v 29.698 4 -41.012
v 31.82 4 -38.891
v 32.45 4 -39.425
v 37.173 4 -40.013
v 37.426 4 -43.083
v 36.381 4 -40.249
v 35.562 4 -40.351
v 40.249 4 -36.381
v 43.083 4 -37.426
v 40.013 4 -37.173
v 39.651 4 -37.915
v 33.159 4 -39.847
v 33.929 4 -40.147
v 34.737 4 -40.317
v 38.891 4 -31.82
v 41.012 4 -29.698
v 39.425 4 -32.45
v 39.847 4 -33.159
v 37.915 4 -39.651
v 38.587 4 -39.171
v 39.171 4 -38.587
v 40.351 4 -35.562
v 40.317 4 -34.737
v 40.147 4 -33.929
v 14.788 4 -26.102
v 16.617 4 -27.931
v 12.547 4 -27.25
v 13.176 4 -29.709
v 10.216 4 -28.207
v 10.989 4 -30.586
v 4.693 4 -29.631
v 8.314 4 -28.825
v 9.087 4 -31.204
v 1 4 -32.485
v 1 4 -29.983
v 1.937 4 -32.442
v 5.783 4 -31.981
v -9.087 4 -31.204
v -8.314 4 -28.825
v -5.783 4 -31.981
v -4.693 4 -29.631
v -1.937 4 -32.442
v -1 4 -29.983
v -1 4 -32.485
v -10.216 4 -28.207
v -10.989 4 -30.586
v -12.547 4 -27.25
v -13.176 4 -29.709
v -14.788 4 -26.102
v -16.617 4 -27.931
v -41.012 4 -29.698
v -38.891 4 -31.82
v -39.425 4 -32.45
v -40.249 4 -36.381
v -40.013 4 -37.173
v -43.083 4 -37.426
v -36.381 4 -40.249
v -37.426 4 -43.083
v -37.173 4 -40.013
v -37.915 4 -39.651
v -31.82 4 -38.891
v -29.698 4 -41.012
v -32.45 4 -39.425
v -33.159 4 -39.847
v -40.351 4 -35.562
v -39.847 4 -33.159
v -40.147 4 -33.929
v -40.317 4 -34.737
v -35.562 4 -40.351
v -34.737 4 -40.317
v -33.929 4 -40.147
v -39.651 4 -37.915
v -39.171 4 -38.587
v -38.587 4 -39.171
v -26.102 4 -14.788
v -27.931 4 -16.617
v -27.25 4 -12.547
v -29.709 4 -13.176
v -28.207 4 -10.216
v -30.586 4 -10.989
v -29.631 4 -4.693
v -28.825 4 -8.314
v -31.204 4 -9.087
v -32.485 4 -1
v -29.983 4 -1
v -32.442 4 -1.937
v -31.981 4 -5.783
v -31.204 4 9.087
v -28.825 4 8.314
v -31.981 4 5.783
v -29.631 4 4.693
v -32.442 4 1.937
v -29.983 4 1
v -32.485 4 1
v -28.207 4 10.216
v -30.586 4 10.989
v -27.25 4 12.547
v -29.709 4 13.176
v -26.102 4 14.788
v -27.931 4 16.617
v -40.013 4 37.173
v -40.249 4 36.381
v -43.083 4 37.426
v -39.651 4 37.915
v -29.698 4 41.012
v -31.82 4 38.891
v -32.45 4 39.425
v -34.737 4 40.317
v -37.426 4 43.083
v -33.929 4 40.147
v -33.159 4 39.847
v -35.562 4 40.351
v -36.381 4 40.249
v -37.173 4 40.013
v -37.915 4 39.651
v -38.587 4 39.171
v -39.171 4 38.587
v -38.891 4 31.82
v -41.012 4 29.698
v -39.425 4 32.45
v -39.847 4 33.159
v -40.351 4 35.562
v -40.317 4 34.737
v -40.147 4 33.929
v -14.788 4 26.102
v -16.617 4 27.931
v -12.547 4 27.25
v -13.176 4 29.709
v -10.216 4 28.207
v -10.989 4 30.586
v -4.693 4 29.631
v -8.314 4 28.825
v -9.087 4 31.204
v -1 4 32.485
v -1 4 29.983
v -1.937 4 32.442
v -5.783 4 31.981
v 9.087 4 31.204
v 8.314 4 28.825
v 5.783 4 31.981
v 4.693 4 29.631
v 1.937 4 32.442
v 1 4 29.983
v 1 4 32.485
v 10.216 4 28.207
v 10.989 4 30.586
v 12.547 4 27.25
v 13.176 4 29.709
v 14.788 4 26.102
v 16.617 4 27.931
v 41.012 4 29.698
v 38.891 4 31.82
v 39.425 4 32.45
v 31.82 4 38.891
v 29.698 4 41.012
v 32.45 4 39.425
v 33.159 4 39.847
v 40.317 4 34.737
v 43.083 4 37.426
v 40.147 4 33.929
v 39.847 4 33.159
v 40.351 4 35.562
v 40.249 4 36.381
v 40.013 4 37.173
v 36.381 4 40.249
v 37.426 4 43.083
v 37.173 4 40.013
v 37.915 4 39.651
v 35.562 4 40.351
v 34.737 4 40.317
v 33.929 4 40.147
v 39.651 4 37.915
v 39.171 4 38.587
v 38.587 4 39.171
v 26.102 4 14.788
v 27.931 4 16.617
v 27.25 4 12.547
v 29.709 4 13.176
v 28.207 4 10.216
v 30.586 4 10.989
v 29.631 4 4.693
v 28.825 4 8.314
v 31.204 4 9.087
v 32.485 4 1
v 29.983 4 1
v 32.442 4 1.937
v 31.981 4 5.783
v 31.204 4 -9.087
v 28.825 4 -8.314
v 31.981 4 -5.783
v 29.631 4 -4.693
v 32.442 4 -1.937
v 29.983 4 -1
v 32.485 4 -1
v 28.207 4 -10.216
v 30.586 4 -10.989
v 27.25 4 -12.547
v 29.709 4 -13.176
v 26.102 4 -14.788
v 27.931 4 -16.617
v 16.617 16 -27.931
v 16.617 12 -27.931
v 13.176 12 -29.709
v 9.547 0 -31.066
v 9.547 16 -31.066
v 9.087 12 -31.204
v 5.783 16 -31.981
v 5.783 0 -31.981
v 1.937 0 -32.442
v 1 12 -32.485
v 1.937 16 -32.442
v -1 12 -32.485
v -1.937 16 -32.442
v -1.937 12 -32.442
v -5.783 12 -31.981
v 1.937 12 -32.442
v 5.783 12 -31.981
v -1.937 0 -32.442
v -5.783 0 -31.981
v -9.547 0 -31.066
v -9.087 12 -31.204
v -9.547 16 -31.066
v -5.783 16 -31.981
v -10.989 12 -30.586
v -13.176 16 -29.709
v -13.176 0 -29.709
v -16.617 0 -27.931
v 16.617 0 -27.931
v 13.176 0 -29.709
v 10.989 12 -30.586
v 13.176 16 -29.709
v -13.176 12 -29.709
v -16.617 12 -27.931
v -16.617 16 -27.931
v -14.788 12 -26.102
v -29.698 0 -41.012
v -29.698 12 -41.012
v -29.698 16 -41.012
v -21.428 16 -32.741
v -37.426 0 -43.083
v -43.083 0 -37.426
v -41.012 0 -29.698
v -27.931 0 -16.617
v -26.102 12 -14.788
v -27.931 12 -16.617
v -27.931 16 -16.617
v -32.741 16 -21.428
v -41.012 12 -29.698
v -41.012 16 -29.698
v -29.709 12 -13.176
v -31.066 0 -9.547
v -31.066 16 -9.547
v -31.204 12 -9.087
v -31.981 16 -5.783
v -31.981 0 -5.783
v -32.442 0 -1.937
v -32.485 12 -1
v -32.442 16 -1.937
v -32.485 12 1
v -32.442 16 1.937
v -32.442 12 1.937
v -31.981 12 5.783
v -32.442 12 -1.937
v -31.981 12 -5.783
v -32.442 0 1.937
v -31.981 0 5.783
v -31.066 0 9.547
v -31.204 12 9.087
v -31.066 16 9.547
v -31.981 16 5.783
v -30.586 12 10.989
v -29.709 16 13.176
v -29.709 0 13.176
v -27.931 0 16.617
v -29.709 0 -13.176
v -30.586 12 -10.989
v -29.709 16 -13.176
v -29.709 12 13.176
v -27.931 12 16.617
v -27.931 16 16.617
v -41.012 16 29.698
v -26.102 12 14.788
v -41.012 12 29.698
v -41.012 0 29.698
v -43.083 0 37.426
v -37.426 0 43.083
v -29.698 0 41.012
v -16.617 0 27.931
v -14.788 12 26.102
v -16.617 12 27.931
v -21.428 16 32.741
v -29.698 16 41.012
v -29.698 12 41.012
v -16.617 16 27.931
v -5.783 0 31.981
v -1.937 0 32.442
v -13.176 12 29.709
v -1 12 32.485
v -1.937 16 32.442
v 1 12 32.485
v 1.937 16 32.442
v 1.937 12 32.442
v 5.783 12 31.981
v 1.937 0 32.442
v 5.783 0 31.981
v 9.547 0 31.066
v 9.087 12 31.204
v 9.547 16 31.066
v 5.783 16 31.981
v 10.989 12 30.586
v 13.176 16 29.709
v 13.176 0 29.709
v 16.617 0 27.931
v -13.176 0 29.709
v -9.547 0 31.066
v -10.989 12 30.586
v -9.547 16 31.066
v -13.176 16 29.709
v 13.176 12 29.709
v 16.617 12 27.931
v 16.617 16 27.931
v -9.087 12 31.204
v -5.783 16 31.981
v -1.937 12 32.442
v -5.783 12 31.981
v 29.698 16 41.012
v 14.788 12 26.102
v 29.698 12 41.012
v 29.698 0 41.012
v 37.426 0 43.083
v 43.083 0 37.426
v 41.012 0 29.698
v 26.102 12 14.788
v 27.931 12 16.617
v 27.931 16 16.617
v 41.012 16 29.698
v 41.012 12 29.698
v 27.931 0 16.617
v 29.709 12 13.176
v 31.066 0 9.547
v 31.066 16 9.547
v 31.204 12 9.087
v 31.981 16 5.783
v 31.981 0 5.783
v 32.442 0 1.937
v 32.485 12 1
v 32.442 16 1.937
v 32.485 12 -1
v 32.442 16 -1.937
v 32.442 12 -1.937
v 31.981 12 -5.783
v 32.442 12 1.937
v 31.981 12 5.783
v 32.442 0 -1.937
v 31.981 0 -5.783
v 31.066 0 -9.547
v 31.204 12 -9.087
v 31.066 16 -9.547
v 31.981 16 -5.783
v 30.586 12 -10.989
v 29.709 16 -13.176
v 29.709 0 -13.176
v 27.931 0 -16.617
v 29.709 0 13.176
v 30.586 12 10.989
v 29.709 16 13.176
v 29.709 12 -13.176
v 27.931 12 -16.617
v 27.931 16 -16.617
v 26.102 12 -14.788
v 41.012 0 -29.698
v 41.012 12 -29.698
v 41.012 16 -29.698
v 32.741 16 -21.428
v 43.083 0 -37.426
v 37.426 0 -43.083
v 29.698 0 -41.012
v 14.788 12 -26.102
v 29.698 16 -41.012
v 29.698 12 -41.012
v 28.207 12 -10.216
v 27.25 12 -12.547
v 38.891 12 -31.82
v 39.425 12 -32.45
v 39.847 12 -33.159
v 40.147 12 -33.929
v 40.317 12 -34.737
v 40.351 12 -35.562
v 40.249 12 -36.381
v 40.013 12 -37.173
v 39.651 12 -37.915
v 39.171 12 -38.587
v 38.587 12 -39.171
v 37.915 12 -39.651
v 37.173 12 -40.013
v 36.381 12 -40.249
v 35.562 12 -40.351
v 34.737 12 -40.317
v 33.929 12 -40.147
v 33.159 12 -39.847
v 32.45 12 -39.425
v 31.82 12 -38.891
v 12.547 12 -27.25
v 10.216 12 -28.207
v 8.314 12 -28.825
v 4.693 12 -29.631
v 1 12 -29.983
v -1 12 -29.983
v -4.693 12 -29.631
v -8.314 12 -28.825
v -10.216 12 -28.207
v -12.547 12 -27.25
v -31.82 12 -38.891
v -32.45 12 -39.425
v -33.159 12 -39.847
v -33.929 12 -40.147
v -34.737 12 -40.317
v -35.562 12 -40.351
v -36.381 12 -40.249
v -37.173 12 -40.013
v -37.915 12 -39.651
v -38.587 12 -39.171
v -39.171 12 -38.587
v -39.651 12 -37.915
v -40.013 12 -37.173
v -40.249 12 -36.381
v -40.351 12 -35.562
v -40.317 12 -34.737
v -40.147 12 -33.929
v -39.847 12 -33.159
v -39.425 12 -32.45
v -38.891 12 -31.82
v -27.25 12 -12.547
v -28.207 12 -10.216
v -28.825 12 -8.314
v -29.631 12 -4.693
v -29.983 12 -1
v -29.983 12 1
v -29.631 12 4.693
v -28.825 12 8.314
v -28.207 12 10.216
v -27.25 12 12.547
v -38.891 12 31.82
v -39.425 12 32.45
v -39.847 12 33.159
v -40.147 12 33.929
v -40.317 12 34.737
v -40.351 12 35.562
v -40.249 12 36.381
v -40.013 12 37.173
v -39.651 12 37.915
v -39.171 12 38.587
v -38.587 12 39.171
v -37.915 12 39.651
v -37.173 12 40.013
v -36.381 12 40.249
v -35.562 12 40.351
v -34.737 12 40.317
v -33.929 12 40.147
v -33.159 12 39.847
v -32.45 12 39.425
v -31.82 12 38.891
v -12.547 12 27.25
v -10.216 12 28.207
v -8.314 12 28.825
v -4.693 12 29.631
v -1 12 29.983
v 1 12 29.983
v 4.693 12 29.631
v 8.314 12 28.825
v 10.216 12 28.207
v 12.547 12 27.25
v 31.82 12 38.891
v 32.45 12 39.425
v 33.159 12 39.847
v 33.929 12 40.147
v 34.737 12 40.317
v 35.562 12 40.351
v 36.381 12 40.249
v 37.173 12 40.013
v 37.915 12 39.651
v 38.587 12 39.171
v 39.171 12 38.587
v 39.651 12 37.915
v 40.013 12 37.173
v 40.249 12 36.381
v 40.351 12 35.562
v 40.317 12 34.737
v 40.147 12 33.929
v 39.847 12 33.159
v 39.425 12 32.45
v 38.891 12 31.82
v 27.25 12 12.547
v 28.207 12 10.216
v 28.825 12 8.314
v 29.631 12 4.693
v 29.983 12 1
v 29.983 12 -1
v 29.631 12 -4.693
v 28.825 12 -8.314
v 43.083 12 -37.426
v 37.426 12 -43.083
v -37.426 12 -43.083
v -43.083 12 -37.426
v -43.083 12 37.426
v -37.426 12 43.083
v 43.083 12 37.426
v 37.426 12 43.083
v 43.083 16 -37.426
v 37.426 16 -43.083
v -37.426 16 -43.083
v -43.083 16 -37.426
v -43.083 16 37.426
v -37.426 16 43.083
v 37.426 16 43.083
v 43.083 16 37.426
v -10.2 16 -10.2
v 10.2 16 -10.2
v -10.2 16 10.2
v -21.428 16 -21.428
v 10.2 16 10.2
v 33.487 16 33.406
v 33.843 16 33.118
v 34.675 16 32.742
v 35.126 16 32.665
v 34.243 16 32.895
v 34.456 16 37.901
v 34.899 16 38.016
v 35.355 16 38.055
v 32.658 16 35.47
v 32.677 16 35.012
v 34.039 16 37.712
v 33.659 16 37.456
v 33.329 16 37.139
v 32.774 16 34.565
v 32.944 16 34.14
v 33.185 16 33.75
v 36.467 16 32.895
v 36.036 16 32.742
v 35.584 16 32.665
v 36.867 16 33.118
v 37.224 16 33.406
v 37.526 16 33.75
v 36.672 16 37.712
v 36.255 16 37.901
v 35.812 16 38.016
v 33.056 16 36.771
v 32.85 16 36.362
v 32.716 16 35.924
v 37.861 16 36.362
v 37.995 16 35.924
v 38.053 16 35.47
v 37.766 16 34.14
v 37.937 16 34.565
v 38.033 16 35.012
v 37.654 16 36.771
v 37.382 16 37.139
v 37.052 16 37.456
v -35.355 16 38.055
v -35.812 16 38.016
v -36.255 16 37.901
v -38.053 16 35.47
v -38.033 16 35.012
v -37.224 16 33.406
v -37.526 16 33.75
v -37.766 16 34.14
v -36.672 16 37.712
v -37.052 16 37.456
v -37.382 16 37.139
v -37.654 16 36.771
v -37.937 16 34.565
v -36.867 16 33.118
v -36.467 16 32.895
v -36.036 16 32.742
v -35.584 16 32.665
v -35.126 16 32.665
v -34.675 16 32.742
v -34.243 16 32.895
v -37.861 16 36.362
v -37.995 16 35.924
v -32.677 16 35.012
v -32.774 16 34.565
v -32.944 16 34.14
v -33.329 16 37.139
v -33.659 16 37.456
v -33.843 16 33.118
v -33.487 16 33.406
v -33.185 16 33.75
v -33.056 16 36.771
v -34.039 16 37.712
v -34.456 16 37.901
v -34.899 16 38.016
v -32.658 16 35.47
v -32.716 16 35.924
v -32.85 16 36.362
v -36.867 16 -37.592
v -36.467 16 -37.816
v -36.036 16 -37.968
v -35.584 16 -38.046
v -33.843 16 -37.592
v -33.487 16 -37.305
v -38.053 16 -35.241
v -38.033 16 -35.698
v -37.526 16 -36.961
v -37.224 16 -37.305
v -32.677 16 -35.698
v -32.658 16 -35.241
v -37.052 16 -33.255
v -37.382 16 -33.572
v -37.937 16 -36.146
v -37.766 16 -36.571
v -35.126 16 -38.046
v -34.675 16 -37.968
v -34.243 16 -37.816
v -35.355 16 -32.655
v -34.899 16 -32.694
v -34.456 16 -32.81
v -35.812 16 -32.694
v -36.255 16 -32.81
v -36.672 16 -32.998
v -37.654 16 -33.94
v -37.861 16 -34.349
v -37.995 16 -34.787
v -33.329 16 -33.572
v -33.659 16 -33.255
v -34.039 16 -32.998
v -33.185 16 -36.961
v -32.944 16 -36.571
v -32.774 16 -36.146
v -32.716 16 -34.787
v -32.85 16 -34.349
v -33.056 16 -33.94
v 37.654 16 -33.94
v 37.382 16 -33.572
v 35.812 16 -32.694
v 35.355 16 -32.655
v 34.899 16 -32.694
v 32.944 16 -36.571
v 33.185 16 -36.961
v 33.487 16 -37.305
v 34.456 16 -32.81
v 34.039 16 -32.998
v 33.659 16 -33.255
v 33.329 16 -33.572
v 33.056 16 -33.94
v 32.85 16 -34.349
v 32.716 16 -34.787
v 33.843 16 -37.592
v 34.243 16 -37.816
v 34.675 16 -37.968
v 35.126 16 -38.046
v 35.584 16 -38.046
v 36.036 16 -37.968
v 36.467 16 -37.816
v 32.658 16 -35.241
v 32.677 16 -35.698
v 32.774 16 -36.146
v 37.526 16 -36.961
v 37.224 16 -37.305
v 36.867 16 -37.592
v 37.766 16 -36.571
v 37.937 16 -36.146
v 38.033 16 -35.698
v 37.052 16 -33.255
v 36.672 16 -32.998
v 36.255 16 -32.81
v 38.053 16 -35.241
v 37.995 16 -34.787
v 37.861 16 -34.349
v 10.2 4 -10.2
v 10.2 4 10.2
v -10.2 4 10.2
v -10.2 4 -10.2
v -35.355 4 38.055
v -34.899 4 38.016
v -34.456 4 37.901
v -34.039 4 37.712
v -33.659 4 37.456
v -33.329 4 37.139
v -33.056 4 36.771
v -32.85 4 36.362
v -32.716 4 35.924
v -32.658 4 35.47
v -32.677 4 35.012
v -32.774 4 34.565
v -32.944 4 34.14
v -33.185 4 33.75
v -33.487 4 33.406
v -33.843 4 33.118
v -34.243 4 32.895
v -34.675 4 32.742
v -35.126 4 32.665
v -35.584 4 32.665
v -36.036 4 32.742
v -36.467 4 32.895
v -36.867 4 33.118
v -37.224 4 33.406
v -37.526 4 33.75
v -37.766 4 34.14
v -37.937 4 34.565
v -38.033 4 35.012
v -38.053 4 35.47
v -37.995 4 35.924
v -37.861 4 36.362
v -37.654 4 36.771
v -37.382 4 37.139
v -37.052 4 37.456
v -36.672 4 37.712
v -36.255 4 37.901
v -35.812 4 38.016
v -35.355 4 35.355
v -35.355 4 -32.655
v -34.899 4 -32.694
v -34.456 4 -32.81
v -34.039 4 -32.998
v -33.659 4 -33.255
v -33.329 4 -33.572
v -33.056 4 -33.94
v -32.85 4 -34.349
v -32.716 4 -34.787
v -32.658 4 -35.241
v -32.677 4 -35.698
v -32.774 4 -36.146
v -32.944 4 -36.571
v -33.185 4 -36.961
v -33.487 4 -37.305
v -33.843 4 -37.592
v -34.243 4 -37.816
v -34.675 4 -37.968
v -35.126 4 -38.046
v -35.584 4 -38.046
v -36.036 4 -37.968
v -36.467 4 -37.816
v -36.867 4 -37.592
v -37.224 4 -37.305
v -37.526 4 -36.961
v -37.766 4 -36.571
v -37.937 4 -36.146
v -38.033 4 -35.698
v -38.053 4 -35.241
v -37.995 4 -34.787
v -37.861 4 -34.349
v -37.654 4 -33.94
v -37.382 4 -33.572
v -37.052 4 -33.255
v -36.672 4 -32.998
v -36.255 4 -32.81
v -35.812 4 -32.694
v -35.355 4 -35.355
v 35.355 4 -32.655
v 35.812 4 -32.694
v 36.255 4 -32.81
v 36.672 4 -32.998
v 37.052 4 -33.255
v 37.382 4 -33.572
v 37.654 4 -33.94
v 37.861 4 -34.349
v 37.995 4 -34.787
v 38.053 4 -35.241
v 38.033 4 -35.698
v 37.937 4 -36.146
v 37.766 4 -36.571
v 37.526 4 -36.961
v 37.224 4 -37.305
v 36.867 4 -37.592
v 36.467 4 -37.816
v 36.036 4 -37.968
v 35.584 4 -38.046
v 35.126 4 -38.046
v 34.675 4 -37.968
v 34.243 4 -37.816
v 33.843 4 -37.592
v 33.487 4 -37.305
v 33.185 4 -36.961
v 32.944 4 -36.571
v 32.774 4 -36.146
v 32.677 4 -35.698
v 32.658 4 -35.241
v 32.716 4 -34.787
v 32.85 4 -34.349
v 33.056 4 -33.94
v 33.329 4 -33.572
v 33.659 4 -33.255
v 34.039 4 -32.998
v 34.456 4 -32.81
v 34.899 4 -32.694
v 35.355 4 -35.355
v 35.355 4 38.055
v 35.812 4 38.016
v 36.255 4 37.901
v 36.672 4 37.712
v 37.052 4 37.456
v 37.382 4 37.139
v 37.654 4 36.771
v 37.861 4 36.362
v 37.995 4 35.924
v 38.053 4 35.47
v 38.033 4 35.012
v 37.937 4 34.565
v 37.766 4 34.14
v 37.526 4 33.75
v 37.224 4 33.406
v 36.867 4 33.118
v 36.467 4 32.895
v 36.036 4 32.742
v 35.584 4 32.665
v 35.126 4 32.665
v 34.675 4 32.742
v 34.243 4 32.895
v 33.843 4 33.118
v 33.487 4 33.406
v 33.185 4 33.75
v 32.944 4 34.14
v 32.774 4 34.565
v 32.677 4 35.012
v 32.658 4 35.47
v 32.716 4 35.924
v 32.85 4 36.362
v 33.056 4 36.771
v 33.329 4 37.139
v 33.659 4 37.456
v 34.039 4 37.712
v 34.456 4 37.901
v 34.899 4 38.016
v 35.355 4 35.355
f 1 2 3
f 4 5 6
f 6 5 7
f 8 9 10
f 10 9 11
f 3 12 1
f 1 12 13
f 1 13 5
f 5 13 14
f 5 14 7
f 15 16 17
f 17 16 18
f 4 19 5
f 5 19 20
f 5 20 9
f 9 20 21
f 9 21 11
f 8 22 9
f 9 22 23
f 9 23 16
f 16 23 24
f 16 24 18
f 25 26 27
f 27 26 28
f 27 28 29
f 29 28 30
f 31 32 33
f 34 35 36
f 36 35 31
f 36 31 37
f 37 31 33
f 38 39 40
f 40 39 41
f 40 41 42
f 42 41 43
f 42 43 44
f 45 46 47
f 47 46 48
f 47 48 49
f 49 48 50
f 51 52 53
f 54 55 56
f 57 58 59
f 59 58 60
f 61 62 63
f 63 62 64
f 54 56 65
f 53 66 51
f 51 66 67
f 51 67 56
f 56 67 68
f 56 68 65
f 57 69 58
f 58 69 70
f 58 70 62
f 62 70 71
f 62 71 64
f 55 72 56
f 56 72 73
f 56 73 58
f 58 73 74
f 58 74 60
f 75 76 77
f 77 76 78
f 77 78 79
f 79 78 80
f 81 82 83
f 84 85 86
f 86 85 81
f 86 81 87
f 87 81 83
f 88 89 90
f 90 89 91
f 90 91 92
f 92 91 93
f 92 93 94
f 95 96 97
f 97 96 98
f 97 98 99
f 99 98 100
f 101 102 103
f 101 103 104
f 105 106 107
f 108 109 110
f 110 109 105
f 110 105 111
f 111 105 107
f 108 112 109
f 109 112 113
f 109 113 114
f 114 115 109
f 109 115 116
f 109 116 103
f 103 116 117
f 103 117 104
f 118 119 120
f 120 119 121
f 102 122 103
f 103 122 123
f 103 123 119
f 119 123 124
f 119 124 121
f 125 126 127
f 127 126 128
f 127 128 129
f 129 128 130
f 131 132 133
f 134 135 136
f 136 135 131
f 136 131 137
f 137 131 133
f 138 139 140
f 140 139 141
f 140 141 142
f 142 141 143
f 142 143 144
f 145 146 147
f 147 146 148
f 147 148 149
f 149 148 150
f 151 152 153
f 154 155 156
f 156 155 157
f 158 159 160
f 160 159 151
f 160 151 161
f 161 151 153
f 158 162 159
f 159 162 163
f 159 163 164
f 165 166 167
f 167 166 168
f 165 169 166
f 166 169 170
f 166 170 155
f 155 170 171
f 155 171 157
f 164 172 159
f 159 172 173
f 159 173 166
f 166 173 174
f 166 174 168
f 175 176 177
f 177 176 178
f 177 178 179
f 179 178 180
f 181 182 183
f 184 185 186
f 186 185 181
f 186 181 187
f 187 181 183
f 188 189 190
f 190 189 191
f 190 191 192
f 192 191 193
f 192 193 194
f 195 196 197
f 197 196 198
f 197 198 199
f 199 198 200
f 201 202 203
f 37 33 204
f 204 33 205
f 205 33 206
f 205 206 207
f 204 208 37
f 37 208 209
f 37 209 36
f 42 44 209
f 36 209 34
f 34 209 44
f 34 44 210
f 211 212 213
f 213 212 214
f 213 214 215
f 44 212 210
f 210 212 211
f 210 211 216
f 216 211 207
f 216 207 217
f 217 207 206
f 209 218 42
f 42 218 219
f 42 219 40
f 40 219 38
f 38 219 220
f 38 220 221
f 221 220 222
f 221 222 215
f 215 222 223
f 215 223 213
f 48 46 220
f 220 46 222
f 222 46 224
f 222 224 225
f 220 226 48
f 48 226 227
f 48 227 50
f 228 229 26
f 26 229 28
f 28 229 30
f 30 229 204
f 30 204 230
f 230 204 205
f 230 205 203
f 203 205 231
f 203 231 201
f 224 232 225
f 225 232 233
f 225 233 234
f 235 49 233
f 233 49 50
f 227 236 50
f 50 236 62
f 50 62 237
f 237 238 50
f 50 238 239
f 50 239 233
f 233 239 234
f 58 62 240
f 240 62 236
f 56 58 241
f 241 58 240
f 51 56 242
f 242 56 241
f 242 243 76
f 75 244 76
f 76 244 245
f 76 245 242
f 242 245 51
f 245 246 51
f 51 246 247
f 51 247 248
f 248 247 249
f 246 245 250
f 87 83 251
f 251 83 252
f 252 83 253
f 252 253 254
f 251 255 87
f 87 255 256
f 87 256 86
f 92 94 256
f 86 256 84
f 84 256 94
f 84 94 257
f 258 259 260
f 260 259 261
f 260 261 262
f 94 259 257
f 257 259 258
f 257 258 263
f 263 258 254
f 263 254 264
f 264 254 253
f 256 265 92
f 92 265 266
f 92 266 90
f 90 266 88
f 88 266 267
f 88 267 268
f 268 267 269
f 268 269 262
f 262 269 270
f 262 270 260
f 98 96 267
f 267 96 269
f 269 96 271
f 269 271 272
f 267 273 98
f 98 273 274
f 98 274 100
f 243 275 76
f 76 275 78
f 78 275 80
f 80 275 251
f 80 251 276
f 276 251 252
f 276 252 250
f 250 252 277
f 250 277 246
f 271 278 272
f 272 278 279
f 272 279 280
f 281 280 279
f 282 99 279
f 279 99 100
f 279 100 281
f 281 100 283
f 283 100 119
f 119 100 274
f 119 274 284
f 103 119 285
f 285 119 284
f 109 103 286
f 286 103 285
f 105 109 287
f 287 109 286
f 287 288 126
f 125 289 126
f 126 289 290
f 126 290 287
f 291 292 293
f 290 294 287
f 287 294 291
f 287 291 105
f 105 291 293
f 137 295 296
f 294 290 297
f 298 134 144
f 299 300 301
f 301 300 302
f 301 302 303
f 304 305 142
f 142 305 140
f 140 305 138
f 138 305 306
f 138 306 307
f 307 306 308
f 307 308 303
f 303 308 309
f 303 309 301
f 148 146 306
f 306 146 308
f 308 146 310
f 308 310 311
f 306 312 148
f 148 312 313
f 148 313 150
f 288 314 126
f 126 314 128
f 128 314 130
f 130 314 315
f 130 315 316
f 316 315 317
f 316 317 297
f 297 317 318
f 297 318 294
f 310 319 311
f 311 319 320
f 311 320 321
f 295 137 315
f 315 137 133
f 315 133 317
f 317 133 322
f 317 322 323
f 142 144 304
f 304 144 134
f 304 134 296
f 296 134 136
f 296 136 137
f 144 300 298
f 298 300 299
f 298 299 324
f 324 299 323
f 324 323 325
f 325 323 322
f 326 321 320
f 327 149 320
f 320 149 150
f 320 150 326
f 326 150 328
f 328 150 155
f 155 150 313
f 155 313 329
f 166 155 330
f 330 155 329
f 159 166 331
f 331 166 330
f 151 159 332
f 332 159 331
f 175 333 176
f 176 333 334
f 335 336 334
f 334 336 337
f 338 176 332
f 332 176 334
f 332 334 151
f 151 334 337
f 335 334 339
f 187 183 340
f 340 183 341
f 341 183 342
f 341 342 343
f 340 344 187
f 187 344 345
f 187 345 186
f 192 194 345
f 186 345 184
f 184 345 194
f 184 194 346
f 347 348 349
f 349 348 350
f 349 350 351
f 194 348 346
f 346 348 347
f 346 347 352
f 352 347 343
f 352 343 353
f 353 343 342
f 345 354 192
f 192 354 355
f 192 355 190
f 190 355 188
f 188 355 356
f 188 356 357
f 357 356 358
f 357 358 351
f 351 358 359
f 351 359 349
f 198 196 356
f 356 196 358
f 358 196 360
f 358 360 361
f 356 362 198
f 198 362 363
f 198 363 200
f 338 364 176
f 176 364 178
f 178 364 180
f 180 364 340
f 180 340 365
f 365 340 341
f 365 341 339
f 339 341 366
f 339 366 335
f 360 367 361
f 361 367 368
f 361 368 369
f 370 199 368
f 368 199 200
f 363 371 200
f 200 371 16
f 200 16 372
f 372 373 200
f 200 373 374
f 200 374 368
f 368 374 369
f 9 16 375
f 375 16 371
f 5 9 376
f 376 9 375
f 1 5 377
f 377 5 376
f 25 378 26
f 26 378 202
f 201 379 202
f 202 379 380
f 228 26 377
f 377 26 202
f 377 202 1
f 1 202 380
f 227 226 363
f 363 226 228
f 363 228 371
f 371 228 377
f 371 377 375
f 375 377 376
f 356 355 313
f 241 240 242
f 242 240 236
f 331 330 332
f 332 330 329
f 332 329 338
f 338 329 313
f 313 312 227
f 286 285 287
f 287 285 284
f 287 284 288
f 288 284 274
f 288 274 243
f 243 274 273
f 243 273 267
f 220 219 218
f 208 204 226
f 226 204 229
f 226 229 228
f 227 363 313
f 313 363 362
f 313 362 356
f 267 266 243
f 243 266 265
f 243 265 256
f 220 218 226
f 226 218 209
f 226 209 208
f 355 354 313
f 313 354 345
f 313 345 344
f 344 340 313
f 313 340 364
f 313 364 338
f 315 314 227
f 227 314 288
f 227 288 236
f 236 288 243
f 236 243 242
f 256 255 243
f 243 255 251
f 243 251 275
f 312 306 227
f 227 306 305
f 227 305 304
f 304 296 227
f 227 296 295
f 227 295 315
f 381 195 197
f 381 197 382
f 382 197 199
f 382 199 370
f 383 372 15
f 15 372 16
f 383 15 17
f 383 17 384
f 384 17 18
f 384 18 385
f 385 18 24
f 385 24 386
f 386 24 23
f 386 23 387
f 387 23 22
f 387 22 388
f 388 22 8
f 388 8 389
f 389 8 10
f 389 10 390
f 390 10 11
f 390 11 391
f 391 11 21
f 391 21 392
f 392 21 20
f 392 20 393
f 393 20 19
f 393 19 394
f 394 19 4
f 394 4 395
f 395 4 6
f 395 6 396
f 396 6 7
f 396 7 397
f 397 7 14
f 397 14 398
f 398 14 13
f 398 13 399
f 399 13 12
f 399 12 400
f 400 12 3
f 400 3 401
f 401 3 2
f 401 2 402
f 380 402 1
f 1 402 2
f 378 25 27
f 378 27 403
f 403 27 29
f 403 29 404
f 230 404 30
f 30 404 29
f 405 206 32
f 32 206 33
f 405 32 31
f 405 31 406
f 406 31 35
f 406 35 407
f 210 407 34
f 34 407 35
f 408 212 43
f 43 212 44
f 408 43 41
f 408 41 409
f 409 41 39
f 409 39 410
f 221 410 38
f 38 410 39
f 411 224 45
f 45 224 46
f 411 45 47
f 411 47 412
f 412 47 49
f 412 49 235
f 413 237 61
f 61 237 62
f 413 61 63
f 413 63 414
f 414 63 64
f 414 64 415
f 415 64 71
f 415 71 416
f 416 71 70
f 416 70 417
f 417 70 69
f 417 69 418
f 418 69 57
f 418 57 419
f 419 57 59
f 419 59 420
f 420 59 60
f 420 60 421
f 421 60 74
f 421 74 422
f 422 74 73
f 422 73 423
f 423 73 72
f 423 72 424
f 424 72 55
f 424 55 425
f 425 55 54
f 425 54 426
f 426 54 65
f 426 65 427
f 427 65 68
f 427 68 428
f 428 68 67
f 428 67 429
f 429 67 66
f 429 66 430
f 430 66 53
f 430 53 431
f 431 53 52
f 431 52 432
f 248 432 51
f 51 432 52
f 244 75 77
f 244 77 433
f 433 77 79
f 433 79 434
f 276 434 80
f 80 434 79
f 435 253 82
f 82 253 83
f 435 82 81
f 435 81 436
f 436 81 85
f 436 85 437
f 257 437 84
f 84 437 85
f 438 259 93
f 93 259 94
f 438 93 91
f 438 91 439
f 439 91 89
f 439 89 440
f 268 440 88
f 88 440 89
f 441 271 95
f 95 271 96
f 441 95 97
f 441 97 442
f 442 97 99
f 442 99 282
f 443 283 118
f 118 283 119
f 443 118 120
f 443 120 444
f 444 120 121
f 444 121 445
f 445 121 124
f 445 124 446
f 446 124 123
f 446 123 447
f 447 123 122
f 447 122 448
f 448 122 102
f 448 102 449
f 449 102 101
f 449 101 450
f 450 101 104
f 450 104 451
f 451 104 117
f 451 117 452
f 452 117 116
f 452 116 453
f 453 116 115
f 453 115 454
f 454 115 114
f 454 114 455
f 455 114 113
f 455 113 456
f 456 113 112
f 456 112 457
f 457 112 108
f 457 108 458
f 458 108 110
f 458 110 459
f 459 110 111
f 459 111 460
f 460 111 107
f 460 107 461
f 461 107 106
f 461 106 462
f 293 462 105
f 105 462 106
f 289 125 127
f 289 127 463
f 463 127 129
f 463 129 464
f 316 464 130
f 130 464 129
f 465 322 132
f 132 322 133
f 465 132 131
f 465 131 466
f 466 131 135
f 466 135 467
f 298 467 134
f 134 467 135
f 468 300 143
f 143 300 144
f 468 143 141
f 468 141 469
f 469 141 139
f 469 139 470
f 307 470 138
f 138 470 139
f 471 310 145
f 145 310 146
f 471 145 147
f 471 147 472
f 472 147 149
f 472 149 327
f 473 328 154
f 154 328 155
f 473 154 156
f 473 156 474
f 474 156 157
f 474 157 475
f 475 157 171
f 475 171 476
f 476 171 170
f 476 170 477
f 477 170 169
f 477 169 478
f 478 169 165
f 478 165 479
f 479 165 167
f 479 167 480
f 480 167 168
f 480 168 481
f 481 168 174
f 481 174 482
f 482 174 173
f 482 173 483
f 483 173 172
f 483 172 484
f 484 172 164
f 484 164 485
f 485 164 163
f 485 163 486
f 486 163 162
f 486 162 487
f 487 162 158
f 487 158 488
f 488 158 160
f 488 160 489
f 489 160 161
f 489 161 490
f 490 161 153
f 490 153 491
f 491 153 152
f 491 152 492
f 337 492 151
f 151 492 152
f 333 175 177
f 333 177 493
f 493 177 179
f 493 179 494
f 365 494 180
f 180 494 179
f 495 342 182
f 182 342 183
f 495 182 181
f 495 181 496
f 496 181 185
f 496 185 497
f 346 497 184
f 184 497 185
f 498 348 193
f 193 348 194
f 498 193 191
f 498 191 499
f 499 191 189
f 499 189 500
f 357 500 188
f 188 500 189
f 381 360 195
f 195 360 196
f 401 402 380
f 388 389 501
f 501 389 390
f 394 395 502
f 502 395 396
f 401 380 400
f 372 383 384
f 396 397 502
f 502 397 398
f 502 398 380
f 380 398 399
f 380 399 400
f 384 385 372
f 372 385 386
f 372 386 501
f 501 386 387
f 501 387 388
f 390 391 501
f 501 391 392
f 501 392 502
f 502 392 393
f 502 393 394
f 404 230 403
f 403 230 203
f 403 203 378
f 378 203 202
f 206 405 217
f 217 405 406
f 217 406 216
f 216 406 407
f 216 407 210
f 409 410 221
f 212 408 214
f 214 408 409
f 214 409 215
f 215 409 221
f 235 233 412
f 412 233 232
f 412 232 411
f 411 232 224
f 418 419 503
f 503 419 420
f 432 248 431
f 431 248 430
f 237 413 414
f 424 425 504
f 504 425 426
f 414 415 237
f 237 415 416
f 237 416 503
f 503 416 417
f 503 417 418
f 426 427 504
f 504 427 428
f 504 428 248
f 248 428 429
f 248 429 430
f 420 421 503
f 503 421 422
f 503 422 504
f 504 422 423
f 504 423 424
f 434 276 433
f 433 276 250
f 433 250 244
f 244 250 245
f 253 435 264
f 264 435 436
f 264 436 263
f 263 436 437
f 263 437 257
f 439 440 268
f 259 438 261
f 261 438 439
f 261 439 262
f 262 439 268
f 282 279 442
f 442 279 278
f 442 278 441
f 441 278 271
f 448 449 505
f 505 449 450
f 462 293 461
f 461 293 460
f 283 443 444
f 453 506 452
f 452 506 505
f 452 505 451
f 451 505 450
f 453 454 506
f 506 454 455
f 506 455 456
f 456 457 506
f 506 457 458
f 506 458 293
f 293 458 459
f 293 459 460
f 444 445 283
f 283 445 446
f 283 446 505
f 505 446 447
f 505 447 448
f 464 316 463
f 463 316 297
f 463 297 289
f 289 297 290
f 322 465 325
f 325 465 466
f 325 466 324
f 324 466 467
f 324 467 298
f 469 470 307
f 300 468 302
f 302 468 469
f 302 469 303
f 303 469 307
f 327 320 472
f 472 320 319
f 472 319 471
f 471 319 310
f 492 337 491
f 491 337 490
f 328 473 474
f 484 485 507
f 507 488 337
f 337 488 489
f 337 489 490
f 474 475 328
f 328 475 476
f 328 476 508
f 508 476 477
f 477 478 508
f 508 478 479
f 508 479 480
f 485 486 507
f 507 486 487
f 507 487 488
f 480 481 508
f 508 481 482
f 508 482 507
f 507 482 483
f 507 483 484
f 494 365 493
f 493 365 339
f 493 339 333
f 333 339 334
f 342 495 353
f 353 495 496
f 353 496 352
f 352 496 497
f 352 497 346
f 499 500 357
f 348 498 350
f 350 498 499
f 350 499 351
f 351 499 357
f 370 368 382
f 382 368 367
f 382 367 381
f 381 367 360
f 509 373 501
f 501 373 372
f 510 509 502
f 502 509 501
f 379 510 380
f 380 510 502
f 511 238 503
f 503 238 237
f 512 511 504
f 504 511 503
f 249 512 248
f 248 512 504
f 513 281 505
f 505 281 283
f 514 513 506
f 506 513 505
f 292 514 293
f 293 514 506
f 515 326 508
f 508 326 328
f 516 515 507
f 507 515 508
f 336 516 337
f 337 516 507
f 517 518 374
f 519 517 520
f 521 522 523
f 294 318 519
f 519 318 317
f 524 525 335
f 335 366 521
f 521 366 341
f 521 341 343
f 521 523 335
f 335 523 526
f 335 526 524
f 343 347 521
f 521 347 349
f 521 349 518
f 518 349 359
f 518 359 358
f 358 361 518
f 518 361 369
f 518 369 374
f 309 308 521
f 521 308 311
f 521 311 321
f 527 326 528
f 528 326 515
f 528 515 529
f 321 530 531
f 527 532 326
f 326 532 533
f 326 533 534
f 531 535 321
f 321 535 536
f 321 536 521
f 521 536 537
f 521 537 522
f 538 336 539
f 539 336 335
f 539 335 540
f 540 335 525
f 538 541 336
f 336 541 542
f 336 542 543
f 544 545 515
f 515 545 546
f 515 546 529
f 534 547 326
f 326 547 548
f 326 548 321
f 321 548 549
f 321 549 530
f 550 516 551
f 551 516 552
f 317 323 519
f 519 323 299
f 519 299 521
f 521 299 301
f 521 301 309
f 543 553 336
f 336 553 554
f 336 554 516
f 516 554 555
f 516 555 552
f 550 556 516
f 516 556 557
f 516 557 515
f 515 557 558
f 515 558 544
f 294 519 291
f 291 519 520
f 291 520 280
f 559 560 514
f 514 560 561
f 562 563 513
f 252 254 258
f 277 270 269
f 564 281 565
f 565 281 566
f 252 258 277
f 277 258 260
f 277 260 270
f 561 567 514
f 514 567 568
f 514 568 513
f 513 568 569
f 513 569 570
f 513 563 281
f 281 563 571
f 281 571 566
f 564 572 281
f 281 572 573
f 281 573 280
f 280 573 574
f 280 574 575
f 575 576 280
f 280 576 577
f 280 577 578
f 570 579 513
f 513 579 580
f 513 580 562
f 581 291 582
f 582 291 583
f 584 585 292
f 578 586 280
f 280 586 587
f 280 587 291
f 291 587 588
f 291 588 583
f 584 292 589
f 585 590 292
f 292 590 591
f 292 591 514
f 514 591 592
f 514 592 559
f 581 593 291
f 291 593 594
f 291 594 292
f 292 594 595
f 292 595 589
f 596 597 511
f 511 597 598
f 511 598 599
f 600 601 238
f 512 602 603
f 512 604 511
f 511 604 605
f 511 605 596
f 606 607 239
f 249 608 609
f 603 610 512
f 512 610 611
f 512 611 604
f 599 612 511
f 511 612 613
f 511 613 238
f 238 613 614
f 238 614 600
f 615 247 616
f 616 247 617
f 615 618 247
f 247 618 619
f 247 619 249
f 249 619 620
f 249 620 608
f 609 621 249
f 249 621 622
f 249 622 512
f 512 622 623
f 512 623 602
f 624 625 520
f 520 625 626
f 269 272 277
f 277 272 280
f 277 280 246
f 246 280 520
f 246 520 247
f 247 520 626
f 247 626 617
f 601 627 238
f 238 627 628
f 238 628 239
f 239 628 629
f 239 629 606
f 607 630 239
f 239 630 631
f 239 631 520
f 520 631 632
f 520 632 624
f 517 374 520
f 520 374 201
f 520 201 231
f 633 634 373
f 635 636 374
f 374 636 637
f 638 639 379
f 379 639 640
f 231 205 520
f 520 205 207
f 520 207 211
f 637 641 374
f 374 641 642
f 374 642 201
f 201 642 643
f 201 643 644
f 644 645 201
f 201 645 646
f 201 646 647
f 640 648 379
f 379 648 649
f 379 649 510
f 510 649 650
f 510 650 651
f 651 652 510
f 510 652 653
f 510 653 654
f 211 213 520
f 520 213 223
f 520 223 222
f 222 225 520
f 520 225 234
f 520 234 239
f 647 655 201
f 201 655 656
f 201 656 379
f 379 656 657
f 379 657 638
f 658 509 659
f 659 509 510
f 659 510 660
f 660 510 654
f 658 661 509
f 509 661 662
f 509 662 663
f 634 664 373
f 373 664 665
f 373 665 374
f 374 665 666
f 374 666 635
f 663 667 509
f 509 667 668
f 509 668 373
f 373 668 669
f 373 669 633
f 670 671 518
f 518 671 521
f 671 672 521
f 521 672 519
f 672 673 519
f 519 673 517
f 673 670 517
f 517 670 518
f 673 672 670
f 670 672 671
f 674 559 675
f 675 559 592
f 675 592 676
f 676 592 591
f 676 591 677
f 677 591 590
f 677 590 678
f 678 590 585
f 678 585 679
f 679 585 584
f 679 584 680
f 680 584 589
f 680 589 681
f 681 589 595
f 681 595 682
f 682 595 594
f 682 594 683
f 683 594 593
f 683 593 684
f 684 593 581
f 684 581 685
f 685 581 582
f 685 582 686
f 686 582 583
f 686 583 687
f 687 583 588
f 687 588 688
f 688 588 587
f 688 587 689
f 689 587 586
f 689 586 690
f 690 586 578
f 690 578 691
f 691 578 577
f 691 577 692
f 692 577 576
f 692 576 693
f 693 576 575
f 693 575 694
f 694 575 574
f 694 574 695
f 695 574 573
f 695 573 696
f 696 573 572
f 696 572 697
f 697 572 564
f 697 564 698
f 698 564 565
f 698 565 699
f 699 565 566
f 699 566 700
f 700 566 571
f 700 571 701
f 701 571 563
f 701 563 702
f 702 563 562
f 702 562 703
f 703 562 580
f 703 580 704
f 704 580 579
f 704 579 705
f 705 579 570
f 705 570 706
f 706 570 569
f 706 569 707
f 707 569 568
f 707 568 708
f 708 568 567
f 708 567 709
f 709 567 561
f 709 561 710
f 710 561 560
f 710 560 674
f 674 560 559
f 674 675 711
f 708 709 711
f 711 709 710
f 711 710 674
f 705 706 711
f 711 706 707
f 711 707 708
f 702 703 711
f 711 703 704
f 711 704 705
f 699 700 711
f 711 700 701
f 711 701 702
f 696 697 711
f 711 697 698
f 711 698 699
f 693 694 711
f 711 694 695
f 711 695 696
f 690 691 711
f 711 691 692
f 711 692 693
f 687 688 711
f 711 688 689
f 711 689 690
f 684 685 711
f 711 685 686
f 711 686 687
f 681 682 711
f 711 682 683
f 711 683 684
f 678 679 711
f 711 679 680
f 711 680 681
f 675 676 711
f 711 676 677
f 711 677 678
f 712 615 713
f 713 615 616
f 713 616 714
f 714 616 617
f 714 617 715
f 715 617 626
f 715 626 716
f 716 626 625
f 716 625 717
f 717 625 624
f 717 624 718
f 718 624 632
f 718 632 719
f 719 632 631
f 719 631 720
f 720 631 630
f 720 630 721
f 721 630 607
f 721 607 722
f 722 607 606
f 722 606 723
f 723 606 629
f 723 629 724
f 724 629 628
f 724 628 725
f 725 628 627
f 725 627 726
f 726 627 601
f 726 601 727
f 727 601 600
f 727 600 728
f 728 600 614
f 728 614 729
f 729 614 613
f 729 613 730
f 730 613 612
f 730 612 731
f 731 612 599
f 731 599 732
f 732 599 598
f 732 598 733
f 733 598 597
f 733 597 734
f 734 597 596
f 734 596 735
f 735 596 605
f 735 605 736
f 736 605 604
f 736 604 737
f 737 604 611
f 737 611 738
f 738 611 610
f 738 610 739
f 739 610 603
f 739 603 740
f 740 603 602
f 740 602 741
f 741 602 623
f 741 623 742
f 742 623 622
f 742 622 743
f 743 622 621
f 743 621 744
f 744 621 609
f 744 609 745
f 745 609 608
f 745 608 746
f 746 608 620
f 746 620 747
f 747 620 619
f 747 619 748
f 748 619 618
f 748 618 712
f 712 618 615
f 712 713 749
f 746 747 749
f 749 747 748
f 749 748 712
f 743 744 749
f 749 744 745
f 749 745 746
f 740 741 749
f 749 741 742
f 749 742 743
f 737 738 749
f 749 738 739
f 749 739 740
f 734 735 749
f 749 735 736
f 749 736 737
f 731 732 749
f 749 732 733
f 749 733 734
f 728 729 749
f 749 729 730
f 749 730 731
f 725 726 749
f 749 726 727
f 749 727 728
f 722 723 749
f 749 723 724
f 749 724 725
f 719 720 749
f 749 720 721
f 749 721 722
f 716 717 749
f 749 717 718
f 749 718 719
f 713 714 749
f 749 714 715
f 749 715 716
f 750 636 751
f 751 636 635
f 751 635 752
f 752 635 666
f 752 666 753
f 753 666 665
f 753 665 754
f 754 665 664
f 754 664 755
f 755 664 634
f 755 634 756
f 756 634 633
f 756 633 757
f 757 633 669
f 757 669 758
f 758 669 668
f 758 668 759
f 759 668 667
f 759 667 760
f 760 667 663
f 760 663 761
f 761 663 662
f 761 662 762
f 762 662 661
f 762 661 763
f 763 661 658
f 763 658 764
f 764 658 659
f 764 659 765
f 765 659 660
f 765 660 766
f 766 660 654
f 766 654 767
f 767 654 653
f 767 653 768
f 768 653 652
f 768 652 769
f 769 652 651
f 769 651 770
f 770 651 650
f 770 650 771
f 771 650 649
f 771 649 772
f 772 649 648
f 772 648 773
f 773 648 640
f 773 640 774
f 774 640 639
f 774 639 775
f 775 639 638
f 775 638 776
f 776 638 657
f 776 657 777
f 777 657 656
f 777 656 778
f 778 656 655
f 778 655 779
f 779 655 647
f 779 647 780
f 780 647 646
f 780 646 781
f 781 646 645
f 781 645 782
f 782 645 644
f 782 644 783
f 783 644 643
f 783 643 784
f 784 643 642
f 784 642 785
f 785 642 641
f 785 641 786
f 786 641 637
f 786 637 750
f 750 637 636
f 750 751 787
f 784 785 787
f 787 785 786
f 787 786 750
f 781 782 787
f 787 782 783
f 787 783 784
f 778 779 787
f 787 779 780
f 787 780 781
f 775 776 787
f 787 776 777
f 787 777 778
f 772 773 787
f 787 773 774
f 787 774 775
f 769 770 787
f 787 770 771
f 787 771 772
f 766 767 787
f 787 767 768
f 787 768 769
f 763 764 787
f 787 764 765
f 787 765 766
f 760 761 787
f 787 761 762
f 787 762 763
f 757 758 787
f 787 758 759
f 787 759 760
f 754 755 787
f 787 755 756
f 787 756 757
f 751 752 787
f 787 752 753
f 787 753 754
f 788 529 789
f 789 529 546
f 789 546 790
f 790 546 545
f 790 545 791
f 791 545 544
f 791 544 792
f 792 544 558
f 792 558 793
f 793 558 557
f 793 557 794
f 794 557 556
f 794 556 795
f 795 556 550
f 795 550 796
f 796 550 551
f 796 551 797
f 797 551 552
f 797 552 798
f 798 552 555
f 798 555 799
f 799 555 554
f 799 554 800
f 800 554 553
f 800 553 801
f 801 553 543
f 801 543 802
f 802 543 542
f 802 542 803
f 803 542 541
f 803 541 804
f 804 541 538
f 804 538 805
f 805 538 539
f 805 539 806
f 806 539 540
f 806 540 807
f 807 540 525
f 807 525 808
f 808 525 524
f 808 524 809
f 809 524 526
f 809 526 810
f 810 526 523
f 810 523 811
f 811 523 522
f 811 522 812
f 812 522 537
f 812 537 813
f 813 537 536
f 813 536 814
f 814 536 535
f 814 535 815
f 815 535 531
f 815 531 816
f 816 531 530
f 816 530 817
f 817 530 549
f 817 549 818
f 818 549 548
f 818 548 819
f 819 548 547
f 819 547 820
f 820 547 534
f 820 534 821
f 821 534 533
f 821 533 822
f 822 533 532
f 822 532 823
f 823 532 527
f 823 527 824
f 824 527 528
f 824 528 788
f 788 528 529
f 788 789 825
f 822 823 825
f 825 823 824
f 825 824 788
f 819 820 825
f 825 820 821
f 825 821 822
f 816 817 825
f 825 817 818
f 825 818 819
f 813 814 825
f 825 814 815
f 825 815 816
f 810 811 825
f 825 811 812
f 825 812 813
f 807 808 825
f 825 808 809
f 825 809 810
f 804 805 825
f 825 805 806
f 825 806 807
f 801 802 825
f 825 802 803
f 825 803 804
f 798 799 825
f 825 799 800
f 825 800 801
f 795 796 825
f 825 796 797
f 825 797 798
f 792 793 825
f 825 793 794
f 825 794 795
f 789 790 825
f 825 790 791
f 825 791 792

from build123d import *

# Parameters (mm, degrees)
BOSS_EXTRUDE8_DEPTH  = 4
BOSS_EXTRUDE10_DEPTH = 8
BOSS_EXTRUDE11_DEPTH = 4
SKETCH14_R           = 2.7
SKETCH14_W           = 20.4
SKETCH14_H           = 20.4
CUT_EXTRUDE1_DEPTH   = 12


with BuildPart() as part:
    # Sketch11 → Boss-Extrude8 (new body)
    with BuildSketch(Plane(origin=(0, 0, 0), x_dir=(1, 0, 0), z_dir=(0, 1, 0))):
        with BuildLine():
            Line((27.930717857, -16.617009358), (41.012193309, -29.69848481))
            Line((41.012193309, -29.69848481), (43.08274567, -37.42589142))
            Line((43.08274567, -37.42589142), (37.42589142, -43.08274567))
            Line((37.42589142, -43.08274567), (29.69848481, -41.012193309))
            Line((29.69848481, -41.012193309), (16.617009358, -27.930717857))
            ThreePointArc((16.617009358, -27.930717857), (0, -32.5), (-16.617009358, -27.930717857))
            Line((-16.617009358, -27.930717857), (-29.69848481, -41.012193309))
            Line((-29.69848481, -41.012193309), (-37.42589142, -43.08274567))
            Line((-37.42589142, -43.08274567), (-43.08274567, -37.42589142))
            Line((-43.08274567, -37.42589142), (-41.012193309, -29.69848481))
            Line((-41.012193309, -29.69848481), (-27.930717857, -16.617009358))
            ThreePointArc((-27.930717857, -16.617009358), (-32.5, 0), (-27.930717857, 16.617009358))
            Line((-27.930717857, 16.617009358), (-41.012193309, 29.69848481))
            Line((-41.012193309, 29.69848481), (-43.08274567, 37.42589142))
            Line((-43.08274567, 37.42589142), (-37.42589142, 43.08274567))
            Line((-37.42589142, 43.08274567), (-29.69848481, 41.012193309))
            Line((-29.69848481, 41.012193309), (-16.617009358, 27.930717857))
            ThreePointArc((-16.617009358, 27.930717857), (0, 32.5), (16.617009358, 27.930717857))
            Line((16.617009358, 27.930717857), (29.69848481, 41.012193309))
            Line((29.69848481, 41.012193309), (37.42589142, 43.08274567))
            Line((37.42589142, 43.08274567), (43.08274567, 37.42589142))
            Line((43.08274567, 37.42589142), (41.012193309, 29.69848481))
            Line((41.012193309, 29.69848481), (27.930717857, 16.617009358))
            ThreePointArc((27.930717857, 16.617009358), (32.5, 0), (27.930717857, -16.617009358))
        make_face()
    extrude(amount=BOSS_EXTRUDE8_DEPTH)

    # Sketch12 → Boss-Extrude10 (add)
    with BuildSketch(Plane(origin=(0, 4, 0), x_dir=(1, 0, 0), z_dir=(0, 1, 0))):
        with BuildLine():
            Line((38.890872967, 31.819805152), (41.012193309, 29.69848481))
            Line((41.012193309, 29.69848481), (26.10190255, 14.788194051))
            ThreePointArc((26.10190255, 14.788194051), (27.250407583, 12.546524879), (28.206823147, 10.216414633))
            Line((28.206823147, 10.216414633), (30.585684682, 10.9893536))
            ThreePointArc((30.585684682, 10.9893536), (30.90933678, 10.043052317), (31.203718671, 9.087240568))
            Line((31.203718671, 9.087240568), (28.824857136, 8.3143016))
            ThreePointArc((28.824857136, 8.3143016), (29.630650218, 4.693033951), (29.983328701, 1))
            Line((29.983328701, 1), (32.484611742, 1))
            ThreePointArc((32.484611742, 1), (32.5, 0), (32.484611742, -1))
            Line((32.484611742, -1), (29.983328701, -1))
            ThreePointArc((29.983328701, -1), (29.630650218, -4.693033951), (28.824857136, -8.3143016))
            Line((28.824857136, -8.3143016), (31.203718671, -9.087240568))
            ThreePointArc((31.203718671, -9.087240568), (30.90933678, -10.043052317), (30.585684682, -10.9893536))
            Line((30.585684682, -10.9893536), (28.206823147, -10.216414633))
            ThreePointArc((28.206823147, -10.216414633), (27.250407583, -12.546524879), (26.10190255, -14.788194051))
            Line((26.10190255, -14.788194051), (41.012193309, -29.69848481))
            Line((41.012193309, -29.69848481), (38.890872965, -31.819805153))
            ThreePointArc((38.890872965, -31.819805153), (38.890872965, -38.890872967), (31.819805152, -38.890872967))
            Line((31.819805152, -38.890872967), (29.69848481, -41.012193309))
            Line((29.69848481, -41.012193309), (14.788194051, -26.10190255))
            ThreePointArc((14.788194051, -26.10190255), (12.546524879, -27.250407583), (10.216414633, -28.206823147))
            Line((10.216414633, -28.206823147), (10.9893536, -30.585684682))
            ThreePointArc((10.9893536, -30.585684682), (10.043052317, -30.90933678), (9.087240568, -31.203718671))
            Line((9.087240568, -31.203718671), (8.3143016, -28.824857136))
            ThreePointArc((8.3143016, -28.824857136), (4.693033951, -29.630650218), (1, -29.983328701))
            Line((1, -29.983328701), (1, -32.484611742))
            ThreePointArc((1, -32.484611742), (0, -32.5), (-1, -32.484611742))
            Line((-1, -32.484611742), (-1, -29.983328701))
            ThreePointArc((-1, -29.983328701), (-4.693033951, -29.630650218), (-8.3143016, -28.824857136))
            Line((-8.3143016, -28.824857136), (-9.087240568, -31.203718671))
            ThreePointArc((-9.087240568, -31.203718671), (-10.043052317, -30.90933678), (-10.9893536, -30.585684682))
            Line((-10.9893536, -30.585684682), (-10.216414633, -28.206823147))
            ThreePointArc((-10.216414633, -28.206823147), (-12.546524879, -27.250407583), (-14.788194051, -26.10190255))
            Line((-14.788194051, -26.10190255), (-29.69848481, -41.012193309))
            Line((-29.69848481, -41.012193309), (-31.819805153, -38.890872965))
            ThreePointArc((-31.819805153, -38.890872965), (-38.890872967, -38.890872965), (-38.890872967, -31.819805152))
            Line((-38.890872967, -31.819805152), (-41.012193309, -29.69848481))
            Line((-41.012193309, -29.69848481), (-26.10190255, -14.788194051))
            ThreePointArc((-26.10190255, -14.788194051), (-27.250407583, -12.546524879), (-28.206823147, -10.216414633))
            Line((-28.206823147, -10.216414633), (-30.585684682, -10.9893536))
            ThreePointArc((-30.585684682, -10.9893536), (-30.90933678, -10.043052317), (-31.203718671, -9.087240568))
            Line((-31.203718671, -9.087240568), (-28.824857136, -8.3143016))
            ThreePointArc((-28.824857136, -8.3143016), (-29.630650218, -4.693033951), (-29.983328701, -1))
            Line((-29.983328701, -1), (-32.484611742, -1))
            ThreePointArc((-32.484611742, -1), (-32.5, 0), (-32.484611742, 1))
            Line((-32.484611742, 1), (-29.983328701, 1))
            ThreePointArc((-29.983328701, 1), (-29.630650218, 4.693033951), (-28.824857136, 8.3143016))
            Line((-28.824857136, 8.3143016), (-31.203718671, 9.087240568))
            ThreePointArc((-31.203718671, 9.087240568), (-30.90933678, 10.043052317), (-30.585684682, 10.9893536))
            Line((-30.585684682, 10.9893536), (-28.206823147, 10.216414633))
            ThreePointArc((-28.206823147, 10.216414633), (-27.250407583, 12.546524879), (-26.10190255, 14.788194051))
            Line((-26.10190255, 14.788194051), (-41.012193309, 29.69848481))
            Line((-41.012193309, 29.69848481), (-38.890872965, 31.819805153))
            ThreePointArc((-38.890872965, 31.819805153), (-38.890872965, 38.890872967), (-31.819805152, 38.890872967))
            Line((-31.819805152, 38.890872967), (-29.69848481, 41.012193309))
            Line((-29.69848481, 41.012193309), (-14.788194051, 26.10190255))
            ThreePointArc((-14.788194051, 26.10190255), (-12.546524879, 27.250407583), (-10.216414633, 28.206823147))
            Line((-10.216414633, 28.206823147), (-10.9893536, 30.585684682))
            ThreePointArc((-10.9893536, 30.585684682), (-10.043052317, 30.90933678), (-9.087240568, 31.203718671))
            Line((-9.087240568, 31.203718671), (-8.3143016, 28.824857136))
            ThreePointArc((-8.3143016, 28.824857136), (-4.693033951, 29.630650218), (-1, 29.983328701))
            Line((-1, 29.983328701), (-1, 32.484611742))
            ThreePointArc((-1, 32.484611742), (0, 32.5), (1, 32.484611742))
            Line((1, 32.484611742), (1, 29.983328701))
            ThreePointArc((1, 29.983328701), (4.693033951, 29.630650218), (8.3143016, 28.824857136))
            Line((8.3143016, 28.824857136), (9.087240568, 31.203718671))
            ThreePointArc((9.087240568, 31.203718671), (10.043052317, 30.90933678), (10.9893536, 30.585684682))
            Line((10.9893536, 30.585684682), (10.216414633, 28.206823147))
            ThreePointArc((10.216414633, 28.206823147), (12.546524879, 27.250407583), (14.788194051, 26.10190255))
            Line((14.788194051, 26.10190255), (29.69848481, 41.012193309))
            Line((29.69848481, 41.012193309), (31.819805153, 38.890872965))
            ThreePointArc((31.819805153, 38.890872965), (38.890872967, 38.890872965), (38.890872967, 31.819805152))
        make_face()
    extrude(amount=BOSS_EXTRUDE10_DEPTH)

    # Sketch13 → Boss-Extrude11 (add)
    with BuildSketch(Plane(origin=(0, 12, 0), x_dir=(1, 0, 0), z_dir=(0, 1, 0))):
        with BuildLine():
            Line((27.930717857, -16.617009358), (41.012193309, -29.69848481))
            Line((41.012193309, -29.69848481), (43.08274567, -37.42589142))
            Line((43.08274567, -37.42589142), (37.42589142, -43.08274567))
            Line((37.42589142, -43.08274567), (29.69848481, -41.012193309))
            Line((29.69848481, -41.012193309), (16.617009358, -27.930717857))
            ThreePointArc((16.617009358, -27.930717857), (0, -32.5), (-16.617009358, -27.930717857))
            Line((-16.617009358, -27.930717857), (-29.69848481, -41.012193309))
            Line((-29.69848481, -41.012193309), (-37.42589142, -43.08274567))
            Line((-37.42589142, -43.08274567), (-43.08274567, -37.42589142))
            Line((-43.08274567, -37.42589142), (-41.012193309, -29.69848481))
            Line((-41.012193309, -29.69848481), (-27.930717857, -16.617009358))
            ThreePointArc((-27.930717857, -16.617009358), (-32.5, 0), (-27.930717857, 16.617009358))
            Line((-27.930717857, 16.617009358), (-41.012193309, 29.69848481))
            Line((-41.012193309, 29.69848481), (-43.08274567, 37.42589142))
            Line((-43.08274567, 37.42589142), (-37.42589142, 43.08274567))
            Line((-37.42589142, 43.08274567), (-29.69848481, 41.012193309))
            Line((-29.69848481, 41.012193309), (-16.617009358, 27.930717857))
            ThreePointArc((-16.617009358, 27.930717857), (0, 32.5), (16.617009358, 27.930717857))
            Line((16.617009358, 27.930717857), (29.69848481, 41.012193309))
            Line((29.69848481, 41.012193309), (37.42589142, 43.08274567))
            Line((37.42589142, 43.08274567), (43.08274567, 37.42589142))
            Line((43.08274567, 37.42589142), (41.012193309, 29.69848481))
            Line((41.012193309, 29.69848481), (27.930717857, 16.617009358))
            ThreePointArc((27.930717857, 16.617009358), (32.5, 0), (27.930717857, -16.617009358))
        make_face()
    extrude(amount=BOSS_EXTRUDE11_DEPTH)

    # Sketch14 → Cut-Extrude1 (cut)
    with BuildSketch(Plane(origin=(0, 16, 0), x_dir=(1, 0, 0), z_dir=(0, 1, 0))):
        with Locations(Location((-35.355339059, 35.355339059, 0), (0, 0, 270))):
            Circle(SKETCH14_R)
        with Locations(Location((35.355339059, 35.355339059, 0), (0, 0, 270))):
            Circle(SKETCH14_R)
        with Locations(Location((35.355339059, -35.355339059, 0), (0, 0, 270))):
            Circle(SKETCH14_R)
        with Locations(Location((-35.355339059, -35.355339059, 0), (0, 0, 270))):
            Circle(SKETCH14_R)
        Rectangle(SKETCH14_W, SKETCH14_H)
    extrude(amount=-CUT_EXTRUDE1_DEPTH, mode=Mode.SUBTRACT)


solid = part.part
